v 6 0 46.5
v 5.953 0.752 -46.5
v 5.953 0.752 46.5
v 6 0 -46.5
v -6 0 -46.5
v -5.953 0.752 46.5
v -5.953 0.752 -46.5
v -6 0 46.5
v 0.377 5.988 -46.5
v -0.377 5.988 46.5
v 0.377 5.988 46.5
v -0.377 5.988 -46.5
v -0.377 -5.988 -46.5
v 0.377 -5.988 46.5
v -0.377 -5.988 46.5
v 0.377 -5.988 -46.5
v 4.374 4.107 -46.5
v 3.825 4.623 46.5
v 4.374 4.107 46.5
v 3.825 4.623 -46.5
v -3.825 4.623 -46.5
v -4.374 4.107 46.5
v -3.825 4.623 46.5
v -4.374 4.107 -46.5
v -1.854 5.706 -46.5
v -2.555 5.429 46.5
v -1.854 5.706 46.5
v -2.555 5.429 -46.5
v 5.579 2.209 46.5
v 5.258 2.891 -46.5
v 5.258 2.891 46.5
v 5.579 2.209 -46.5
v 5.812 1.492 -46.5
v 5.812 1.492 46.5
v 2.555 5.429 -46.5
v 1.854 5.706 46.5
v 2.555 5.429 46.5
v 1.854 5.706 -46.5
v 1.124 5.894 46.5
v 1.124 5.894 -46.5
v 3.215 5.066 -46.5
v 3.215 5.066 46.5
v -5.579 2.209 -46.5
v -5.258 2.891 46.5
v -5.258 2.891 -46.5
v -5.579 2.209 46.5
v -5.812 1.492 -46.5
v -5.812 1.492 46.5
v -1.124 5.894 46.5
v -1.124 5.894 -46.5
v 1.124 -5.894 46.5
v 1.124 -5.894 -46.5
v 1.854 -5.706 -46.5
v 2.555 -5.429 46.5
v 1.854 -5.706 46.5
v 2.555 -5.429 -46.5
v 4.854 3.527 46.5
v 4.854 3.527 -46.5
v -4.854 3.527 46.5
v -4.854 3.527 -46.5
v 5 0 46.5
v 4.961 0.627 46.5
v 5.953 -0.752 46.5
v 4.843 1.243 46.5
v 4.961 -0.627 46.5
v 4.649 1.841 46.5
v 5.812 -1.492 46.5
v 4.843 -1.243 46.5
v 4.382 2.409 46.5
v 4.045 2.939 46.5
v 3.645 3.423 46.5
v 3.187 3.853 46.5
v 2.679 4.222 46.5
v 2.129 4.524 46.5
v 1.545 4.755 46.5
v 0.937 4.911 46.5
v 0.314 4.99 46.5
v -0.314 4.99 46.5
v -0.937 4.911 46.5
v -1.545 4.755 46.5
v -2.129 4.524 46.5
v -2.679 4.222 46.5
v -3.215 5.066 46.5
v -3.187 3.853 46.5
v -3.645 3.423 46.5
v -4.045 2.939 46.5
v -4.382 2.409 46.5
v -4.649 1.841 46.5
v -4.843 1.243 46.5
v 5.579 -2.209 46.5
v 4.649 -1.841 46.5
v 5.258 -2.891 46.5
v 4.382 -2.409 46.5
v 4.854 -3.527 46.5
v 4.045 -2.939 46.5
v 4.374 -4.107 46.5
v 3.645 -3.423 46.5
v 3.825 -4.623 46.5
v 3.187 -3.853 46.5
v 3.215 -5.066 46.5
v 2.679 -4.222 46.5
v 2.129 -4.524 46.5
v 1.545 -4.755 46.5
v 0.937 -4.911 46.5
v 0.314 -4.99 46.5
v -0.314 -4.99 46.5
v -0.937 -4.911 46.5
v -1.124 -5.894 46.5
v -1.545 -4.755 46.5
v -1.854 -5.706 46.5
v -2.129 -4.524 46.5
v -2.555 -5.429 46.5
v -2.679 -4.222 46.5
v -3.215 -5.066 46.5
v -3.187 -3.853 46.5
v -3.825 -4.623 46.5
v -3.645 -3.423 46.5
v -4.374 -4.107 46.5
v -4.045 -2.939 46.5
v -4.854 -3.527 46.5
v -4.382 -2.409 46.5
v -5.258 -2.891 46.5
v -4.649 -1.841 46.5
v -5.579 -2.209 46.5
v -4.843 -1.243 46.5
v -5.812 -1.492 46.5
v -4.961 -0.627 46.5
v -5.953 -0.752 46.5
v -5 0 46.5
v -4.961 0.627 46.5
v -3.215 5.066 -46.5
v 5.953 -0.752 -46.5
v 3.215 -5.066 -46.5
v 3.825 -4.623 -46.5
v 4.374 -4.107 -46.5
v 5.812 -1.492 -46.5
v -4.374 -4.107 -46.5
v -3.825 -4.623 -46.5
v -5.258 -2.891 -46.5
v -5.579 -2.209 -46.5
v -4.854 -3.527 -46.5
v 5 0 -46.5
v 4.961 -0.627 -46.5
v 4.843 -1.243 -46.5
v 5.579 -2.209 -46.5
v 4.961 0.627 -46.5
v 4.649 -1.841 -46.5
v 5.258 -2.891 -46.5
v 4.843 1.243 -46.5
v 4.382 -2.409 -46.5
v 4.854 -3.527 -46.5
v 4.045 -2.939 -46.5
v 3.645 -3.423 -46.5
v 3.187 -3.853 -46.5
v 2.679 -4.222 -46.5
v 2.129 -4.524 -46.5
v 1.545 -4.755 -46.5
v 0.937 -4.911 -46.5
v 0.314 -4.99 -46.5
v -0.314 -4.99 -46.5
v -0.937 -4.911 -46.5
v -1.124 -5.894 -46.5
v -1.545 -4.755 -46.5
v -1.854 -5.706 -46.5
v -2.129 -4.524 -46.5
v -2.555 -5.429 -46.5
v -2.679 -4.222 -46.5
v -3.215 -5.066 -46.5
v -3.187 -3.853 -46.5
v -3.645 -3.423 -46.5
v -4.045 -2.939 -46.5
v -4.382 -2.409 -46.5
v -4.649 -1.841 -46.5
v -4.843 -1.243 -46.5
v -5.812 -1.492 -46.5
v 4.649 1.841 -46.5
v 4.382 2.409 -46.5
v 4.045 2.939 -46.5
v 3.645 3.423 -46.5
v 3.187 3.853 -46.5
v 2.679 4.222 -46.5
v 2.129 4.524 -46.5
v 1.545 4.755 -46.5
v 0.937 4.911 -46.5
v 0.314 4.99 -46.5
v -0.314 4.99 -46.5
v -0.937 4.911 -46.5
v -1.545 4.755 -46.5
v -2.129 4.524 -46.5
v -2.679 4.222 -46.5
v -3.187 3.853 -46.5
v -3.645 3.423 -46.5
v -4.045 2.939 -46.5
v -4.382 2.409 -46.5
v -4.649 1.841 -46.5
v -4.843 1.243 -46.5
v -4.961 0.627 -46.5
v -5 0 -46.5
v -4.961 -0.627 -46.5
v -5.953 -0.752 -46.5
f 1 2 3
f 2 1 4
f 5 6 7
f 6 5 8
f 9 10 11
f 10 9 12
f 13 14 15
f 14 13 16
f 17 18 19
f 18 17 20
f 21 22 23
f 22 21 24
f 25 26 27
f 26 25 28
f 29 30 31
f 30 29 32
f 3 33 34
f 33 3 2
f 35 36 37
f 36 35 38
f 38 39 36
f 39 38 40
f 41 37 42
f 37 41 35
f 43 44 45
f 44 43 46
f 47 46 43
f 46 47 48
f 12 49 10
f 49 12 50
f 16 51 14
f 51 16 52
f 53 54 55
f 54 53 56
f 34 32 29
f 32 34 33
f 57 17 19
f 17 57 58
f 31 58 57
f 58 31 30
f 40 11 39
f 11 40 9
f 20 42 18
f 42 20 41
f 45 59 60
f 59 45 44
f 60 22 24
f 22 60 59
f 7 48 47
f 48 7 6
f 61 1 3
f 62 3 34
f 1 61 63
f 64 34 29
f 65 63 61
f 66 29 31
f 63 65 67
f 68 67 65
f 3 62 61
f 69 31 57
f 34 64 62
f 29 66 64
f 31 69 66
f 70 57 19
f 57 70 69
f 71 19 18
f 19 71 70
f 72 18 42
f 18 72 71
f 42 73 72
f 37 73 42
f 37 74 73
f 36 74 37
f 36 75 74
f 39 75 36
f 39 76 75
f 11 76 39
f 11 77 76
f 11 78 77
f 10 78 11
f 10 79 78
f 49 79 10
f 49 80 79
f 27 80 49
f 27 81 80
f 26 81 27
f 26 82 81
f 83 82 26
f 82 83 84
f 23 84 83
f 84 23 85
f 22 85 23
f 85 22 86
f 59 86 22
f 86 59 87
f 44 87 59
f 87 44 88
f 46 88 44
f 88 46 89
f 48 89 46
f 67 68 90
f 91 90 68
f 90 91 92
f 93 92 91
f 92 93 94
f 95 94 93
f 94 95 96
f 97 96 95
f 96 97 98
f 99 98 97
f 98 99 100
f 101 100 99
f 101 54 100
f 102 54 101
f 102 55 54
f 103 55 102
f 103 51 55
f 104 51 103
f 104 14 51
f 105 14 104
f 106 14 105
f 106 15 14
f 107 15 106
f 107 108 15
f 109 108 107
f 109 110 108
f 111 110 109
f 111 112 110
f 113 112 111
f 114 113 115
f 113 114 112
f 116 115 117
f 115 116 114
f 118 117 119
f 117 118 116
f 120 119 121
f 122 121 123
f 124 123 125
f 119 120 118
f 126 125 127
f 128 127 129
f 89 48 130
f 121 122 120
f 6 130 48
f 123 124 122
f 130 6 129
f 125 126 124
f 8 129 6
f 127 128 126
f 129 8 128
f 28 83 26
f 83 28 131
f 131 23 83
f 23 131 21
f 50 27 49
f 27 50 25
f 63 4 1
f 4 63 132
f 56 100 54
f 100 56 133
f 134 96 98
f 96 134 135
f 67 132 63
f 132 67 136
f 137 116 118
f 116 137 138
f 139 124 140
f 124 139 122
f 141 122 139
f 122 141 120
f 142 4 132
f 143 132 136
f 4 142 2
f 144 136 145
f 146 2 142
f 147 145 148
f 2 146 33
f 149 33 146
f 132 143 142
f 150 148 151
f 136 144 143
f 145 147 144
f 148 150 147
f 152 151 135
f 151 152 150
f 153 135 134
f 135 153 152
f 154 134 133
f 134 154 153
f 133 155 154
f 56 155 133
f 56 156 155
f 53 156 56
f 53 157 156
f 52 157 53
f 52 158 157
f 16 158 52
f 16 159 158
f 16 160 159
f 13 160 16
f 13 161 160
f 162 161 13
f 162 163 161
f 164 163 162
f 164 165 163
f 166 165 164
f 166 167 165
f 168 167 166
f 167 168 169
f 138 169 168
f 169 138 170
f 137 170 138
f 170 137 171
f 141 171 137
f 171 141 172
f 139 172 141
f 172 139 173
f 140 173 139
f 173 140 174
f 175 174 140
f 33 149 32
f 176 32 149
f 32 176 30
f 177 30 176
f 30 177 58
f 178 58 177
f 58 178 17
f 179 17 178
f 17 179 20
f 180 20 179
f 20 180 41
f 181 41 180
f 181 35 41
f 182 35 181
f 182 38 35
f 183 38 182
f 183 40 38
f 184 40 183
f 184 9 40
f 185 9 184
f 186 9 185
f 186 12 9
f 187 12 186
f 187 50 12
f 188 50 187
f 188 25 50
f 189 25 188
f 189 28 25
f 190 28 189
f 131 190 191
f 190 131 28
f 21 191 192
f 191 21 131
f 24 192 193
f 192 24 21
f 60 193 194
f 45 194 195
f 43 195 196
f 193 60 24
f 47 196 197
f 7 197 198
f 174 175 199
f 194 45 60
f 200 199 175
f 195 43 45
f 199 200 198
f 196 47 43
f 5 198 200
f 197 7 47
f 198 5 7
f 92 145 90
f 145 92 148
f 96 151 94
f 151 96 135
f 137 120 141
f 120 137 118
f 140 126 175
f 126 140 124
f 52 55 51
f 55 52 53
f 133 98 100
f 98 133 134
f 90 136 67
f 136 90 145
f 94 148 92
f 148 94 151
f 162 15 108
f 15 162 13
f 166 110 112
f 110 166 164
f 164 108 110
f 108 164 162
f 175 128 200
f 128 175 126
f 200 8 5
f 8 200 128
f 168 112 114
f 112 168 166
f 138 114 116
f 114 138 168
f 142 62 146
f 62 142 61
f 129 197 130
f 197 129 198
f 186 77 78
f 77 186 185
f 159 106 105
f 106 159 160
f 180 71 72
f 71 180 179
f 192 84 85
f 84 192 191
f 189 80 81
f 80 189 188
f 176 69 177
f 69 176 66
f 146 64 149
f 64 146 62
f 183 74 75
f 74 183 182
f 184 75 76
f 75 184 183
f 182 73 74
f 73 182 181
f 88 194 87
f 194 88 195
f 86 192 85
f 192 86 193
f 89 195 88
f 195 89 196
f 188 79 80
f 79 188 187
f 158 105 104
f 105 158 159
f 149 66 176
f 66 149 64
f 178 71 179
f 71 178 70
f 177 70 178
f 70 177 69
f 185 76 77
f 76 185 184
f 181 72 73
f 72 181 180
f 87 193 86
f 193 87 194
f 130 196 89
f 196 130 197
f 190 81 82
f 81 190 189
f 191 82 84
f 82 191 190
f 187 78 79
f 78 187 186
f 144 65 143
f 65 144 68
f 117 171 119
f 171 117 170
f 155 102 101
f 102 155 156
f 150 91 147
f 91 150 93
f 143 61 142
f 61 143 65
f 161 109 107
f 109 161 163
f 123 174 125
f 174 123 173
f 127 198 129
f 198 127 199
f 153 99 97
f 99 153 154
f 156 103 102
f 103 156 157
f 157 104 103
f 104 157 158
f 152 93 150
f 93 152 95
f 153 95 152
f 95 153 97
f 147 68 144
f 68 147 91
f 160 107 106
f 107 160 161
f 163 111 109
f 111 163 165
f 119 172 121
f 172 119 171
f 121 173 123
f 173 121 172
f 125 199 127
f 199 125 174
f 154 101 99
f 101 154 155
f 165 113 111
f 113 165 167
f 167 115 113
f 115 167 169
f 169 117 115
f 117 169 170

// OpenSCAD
$fn = 50;


difference() {
	union() {
		translate(v = [0, 0, -46.5000000000]) {
			cylinder(h = 93, r = 6.0000000000);
		}
	}
	union() {
		translate(v = [0, 0, -100.0000000000]) {
			cylinder(h = 200, r = 5);
		}
	}
}
